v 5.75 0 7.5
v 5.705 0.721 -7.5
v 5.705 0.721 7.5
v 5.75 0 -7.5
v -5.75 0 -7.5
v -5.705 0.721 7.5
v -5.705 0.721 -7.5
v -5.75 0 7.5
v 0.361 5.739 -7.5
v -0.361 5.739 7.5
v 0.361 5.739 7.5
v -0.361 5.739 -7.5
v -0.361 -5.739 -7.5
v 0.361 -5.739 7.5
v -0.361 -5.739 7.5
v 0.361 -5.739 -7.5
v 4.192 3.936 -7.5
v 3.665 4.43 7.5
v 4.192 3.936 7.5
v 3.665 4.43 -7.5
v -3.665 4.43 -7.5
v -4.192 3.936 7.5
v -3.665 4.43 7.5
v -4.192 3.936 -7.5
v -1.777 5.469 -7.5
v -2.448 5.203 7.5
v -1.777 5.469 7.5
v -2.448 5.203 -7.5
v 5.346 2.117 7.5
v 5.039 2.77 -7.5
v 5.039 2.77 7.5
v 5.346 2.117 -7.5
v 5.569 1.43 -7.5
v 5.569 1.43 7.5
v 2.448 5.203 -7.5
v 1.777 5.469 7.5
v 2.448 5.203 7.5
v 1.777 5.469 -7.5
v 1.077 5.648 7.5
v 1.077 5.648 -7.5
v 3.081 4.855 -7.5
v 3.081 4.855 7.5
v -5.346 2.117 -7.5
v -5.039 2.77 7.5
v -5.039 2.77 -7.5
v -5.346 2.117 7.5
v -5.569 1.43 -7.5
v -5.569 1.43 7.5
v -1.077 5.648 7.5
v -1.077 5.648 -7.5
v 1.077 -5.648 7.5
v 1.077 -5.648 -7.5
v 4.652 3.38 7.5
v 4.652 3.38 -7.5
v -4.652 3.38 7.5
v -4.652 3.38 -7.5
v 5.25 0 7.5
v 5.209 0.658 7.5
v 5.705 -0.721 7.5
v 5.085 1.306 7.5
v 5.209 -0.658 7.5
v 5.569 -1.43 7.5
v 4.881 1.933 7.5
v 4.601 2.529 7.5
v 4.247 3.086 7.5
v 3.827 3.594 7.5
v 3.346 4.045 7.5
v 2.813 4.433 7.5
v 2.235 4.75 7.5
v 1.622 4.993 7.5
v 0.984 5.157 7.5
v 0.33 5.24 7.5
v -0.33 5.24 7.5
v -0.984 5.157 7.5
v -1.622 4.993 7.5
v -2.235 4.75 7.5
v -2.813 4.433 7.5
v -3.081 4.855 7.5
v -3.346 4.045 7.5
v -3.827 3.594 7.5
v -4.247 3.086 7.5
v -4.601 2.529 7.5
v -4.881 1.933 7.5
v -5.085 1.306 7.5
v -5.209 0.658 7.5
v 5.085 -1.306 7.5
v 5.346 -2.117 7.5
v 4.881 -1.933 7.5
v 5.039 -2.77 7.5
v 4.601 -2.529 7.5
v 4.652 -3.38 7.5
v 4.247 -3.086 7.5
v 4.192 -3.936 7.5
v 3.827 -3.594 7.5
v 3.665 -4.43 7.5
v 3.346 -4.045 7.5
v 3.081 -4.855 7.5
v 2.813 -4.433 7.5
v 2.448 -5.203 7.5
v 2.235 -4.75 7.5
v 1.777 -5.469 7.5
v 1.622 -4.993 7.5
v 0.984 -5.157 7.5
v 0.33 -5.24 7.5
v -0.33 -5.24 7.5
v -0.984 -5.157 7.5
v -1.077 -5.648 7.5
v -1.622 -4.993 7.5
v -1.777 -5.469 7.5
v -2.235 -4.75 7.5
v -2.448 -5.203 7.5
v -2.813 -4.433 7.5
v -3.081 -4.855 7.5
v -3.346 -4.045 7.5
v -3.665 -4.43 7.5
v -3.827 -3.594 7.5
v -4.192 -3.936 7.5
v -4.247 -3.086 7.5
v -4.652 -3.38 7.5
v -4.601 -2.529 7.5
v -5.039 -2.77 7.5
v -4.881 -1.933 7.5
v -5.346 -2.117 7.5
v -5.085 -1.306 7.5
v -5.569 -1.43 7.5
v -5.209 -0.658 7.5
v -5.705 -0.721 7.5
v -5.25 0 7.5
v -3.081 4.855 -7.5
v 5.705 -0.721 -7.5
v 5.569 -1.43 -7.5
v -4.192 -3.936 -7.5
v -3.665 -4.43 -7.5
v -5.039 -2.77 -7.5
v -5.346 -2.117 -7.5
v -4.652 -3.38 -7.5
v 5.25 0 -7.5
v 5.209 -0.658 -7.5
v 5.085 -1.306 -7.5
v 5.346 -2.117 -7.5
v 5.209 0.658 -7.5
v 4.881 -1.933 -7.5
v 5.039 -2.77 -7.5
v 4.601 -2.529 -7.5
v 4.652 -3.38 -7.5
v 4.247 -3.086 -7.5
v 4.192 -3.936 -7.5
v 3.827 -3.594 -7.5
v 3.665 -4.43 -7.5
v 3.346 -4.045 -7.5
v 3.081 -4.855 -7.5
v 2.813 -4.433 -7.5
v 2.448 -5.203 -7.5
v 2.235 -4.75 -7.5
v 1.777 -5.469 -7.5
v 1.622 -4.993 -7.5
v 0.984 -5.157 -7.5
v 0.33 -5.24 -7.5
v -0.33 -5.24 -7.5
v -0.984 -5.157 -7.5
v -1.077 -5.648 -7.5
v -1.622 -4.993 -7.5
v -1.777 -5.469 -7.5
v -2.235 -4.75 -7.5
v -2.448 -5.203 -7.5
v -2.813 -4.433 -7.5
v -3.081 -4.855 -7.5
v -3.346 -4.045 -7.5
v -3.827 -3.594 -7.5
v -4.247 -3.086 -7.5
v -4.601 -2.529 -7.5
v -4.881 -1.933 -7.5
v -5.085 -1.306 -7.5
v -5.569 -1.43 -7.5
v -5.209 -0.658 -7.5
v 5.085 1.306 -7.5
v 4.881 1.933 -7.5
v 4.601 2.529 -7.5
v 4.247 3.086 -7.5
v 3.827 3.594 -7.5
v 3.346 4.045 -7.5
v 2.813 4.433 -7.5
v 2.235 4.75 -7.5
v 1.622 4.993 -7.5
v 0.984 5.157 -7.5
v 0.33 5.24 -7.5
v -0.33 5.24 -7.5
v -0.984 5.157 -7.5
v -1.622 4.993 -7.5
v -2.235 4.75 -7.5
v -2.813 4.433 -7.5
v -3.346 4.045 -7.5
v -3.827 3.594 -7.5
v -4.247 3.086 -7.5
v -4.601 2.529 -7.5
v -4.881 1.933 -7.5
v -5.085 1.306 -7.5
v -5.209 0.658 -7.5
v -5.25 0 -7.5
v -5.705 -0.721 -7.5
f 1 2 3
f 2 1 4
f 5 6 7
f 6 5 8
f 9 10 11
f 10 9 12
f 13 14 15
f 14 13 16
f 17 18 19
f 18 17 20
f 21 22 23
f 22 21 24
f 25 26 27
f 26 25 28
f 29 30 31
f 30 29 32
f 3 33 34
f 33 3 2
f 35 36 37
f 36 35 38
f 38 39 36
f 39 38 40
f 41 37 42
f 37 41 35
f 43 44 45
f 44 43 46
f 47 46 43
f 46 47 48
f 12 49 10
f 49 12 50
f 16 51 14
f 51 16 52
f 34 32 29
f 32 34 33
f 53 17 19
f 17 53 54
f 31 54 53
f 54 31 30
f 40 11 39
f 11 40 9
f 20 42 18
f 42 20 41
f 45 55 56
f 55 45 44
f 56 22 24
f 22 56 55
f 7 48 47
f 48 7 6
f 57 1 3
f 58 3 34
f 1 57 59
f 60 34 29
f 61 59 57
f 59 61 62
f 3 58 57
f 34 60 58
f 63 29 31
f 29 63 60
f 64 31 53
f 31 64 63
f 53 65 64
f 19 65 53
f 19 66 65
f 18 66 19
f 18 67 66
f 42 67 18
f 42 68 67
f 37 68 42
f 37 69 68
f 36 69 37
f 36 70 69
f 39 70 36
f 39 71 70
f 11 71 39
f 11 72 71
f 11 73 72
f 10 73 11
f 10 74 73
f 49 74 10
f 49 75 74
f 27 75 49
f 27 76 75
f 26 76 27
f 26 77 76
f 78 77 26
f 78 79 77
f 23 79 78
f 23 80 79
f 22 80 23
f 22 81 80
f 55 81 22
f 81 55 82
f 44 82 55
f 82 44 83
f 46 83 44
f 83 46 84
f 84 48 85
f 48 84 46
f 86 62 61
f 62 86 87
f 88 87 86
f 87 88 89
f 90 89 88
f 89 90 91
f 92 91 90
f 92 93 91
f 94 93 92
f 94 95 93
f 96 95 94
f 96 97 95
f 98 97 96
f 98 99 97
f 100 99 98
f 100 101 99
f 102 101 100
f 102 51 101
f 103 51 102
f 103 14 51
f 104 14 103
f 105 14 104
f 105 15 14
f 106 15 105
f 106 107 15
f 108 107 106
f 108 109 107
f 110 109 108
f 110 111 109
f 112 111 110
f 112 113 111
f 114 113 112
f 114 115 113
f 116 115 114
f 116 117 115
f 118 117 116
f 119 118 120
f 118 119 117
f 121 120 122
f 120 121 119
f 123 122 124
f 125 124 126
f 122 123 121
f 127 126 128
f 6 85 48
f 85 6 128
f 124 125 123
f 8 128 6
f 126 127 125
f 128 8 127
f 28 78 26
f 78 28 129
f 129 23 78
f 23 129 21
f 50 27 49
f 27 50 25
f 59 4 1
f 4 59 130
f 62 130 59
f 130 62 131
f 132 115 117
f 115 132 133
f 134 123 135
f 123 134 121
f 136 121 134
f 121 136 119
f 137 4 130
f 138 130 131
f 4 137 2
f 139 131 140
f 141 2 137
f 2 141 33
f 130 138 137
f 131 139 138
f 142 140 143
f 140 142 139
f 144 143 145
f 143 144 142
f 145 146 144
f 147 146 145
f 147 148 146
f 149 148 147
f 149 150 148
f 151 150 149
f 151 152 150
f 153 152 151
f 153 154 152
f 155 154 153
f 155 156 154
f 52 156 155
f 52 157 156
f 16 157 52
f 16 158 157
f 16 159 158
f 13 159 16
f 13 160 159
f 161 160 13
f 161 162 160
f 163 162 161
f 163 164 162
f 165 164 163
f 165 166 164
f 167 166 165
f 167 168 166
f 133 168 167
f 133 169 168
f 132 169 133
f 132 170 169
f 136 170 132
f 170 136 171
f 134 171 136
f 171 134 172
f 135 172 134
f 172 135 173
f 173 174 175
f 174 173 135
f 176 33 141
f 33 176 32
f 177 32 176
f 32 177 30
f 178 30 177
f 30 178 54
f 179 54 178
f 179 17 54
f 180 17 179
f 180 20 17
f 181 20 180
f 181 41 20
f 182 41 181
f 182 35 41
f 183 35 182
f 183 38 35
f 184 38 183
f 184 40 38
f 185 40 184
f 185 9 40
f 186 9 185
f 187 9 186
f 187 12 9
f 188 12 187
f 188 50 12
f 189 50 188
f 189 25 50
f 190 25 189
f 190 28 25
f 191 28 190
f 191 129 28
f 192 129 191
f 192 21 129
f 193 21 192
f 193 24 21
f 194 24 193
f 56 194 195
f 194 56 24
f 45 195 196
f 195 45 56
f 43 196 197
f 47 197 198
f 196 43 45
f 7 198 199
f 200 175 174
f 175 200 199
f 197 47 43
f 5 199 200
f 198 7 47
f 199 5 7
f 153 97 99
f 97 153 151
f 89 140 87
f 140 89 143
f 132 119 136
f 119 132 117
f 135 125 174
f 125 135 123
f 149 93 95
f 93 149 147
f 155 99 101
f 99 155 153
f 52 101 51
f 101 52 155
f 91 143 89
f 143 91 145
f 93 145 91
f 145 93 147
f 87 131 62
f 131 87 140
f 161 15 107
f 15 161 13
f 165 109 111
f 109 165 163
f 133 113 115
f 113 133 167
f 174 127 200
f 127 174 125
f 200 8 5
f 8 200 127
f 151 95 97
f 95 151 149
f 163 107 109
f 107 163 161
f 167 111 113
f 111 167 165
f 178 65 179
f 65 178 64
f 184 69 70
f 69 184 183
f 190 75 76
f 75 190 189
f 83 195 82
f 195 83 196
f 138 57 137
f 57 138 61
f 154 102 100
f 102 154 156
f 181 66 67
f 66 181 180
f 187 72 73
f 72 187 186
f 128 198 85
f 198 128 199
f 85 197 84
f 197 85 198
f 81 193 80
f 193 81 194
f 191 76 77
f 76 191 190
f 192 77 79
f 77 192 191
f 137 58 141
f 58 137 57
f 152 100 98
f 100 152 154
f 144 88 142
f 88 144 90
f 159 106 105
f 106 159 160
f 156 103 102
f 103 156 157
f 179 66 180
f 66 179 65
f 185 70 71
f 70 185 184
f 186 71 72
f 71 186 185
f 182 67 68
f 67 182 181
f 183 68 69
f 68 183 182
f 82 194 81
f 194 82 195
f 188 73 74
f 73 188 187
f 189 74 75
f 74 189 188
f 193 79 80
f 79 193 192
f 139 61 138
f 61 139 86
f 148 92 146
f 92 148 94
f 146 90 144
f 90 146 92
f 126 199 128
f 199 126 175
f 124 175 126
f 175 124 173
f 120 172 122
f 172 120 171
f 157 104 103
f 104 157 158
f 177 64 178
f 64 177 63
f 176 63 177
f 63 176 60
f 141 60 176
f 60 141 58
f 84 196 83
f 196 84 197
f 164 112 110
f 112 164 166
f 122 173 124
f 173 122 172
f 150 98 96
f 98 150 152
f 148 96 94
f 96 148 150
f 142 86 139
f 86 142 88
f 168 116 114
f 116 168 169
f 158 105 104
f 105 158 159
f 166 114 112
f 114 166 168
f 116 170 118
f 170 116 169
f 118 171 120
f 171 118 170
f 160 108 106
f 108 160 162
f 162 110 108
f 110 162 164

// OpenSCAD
$fn = 50;


difference() {
	union() {
		translate(v = [0, 0, -7.5000000000]) {
			cylinder(h = 15, r = 5.7500000000);
		}
	}
	union() {
		translate(v = [0, 0, -100.0000000000]) {
			cylinder(h = 200, r = 5.2500000000);
		}
	}
}
